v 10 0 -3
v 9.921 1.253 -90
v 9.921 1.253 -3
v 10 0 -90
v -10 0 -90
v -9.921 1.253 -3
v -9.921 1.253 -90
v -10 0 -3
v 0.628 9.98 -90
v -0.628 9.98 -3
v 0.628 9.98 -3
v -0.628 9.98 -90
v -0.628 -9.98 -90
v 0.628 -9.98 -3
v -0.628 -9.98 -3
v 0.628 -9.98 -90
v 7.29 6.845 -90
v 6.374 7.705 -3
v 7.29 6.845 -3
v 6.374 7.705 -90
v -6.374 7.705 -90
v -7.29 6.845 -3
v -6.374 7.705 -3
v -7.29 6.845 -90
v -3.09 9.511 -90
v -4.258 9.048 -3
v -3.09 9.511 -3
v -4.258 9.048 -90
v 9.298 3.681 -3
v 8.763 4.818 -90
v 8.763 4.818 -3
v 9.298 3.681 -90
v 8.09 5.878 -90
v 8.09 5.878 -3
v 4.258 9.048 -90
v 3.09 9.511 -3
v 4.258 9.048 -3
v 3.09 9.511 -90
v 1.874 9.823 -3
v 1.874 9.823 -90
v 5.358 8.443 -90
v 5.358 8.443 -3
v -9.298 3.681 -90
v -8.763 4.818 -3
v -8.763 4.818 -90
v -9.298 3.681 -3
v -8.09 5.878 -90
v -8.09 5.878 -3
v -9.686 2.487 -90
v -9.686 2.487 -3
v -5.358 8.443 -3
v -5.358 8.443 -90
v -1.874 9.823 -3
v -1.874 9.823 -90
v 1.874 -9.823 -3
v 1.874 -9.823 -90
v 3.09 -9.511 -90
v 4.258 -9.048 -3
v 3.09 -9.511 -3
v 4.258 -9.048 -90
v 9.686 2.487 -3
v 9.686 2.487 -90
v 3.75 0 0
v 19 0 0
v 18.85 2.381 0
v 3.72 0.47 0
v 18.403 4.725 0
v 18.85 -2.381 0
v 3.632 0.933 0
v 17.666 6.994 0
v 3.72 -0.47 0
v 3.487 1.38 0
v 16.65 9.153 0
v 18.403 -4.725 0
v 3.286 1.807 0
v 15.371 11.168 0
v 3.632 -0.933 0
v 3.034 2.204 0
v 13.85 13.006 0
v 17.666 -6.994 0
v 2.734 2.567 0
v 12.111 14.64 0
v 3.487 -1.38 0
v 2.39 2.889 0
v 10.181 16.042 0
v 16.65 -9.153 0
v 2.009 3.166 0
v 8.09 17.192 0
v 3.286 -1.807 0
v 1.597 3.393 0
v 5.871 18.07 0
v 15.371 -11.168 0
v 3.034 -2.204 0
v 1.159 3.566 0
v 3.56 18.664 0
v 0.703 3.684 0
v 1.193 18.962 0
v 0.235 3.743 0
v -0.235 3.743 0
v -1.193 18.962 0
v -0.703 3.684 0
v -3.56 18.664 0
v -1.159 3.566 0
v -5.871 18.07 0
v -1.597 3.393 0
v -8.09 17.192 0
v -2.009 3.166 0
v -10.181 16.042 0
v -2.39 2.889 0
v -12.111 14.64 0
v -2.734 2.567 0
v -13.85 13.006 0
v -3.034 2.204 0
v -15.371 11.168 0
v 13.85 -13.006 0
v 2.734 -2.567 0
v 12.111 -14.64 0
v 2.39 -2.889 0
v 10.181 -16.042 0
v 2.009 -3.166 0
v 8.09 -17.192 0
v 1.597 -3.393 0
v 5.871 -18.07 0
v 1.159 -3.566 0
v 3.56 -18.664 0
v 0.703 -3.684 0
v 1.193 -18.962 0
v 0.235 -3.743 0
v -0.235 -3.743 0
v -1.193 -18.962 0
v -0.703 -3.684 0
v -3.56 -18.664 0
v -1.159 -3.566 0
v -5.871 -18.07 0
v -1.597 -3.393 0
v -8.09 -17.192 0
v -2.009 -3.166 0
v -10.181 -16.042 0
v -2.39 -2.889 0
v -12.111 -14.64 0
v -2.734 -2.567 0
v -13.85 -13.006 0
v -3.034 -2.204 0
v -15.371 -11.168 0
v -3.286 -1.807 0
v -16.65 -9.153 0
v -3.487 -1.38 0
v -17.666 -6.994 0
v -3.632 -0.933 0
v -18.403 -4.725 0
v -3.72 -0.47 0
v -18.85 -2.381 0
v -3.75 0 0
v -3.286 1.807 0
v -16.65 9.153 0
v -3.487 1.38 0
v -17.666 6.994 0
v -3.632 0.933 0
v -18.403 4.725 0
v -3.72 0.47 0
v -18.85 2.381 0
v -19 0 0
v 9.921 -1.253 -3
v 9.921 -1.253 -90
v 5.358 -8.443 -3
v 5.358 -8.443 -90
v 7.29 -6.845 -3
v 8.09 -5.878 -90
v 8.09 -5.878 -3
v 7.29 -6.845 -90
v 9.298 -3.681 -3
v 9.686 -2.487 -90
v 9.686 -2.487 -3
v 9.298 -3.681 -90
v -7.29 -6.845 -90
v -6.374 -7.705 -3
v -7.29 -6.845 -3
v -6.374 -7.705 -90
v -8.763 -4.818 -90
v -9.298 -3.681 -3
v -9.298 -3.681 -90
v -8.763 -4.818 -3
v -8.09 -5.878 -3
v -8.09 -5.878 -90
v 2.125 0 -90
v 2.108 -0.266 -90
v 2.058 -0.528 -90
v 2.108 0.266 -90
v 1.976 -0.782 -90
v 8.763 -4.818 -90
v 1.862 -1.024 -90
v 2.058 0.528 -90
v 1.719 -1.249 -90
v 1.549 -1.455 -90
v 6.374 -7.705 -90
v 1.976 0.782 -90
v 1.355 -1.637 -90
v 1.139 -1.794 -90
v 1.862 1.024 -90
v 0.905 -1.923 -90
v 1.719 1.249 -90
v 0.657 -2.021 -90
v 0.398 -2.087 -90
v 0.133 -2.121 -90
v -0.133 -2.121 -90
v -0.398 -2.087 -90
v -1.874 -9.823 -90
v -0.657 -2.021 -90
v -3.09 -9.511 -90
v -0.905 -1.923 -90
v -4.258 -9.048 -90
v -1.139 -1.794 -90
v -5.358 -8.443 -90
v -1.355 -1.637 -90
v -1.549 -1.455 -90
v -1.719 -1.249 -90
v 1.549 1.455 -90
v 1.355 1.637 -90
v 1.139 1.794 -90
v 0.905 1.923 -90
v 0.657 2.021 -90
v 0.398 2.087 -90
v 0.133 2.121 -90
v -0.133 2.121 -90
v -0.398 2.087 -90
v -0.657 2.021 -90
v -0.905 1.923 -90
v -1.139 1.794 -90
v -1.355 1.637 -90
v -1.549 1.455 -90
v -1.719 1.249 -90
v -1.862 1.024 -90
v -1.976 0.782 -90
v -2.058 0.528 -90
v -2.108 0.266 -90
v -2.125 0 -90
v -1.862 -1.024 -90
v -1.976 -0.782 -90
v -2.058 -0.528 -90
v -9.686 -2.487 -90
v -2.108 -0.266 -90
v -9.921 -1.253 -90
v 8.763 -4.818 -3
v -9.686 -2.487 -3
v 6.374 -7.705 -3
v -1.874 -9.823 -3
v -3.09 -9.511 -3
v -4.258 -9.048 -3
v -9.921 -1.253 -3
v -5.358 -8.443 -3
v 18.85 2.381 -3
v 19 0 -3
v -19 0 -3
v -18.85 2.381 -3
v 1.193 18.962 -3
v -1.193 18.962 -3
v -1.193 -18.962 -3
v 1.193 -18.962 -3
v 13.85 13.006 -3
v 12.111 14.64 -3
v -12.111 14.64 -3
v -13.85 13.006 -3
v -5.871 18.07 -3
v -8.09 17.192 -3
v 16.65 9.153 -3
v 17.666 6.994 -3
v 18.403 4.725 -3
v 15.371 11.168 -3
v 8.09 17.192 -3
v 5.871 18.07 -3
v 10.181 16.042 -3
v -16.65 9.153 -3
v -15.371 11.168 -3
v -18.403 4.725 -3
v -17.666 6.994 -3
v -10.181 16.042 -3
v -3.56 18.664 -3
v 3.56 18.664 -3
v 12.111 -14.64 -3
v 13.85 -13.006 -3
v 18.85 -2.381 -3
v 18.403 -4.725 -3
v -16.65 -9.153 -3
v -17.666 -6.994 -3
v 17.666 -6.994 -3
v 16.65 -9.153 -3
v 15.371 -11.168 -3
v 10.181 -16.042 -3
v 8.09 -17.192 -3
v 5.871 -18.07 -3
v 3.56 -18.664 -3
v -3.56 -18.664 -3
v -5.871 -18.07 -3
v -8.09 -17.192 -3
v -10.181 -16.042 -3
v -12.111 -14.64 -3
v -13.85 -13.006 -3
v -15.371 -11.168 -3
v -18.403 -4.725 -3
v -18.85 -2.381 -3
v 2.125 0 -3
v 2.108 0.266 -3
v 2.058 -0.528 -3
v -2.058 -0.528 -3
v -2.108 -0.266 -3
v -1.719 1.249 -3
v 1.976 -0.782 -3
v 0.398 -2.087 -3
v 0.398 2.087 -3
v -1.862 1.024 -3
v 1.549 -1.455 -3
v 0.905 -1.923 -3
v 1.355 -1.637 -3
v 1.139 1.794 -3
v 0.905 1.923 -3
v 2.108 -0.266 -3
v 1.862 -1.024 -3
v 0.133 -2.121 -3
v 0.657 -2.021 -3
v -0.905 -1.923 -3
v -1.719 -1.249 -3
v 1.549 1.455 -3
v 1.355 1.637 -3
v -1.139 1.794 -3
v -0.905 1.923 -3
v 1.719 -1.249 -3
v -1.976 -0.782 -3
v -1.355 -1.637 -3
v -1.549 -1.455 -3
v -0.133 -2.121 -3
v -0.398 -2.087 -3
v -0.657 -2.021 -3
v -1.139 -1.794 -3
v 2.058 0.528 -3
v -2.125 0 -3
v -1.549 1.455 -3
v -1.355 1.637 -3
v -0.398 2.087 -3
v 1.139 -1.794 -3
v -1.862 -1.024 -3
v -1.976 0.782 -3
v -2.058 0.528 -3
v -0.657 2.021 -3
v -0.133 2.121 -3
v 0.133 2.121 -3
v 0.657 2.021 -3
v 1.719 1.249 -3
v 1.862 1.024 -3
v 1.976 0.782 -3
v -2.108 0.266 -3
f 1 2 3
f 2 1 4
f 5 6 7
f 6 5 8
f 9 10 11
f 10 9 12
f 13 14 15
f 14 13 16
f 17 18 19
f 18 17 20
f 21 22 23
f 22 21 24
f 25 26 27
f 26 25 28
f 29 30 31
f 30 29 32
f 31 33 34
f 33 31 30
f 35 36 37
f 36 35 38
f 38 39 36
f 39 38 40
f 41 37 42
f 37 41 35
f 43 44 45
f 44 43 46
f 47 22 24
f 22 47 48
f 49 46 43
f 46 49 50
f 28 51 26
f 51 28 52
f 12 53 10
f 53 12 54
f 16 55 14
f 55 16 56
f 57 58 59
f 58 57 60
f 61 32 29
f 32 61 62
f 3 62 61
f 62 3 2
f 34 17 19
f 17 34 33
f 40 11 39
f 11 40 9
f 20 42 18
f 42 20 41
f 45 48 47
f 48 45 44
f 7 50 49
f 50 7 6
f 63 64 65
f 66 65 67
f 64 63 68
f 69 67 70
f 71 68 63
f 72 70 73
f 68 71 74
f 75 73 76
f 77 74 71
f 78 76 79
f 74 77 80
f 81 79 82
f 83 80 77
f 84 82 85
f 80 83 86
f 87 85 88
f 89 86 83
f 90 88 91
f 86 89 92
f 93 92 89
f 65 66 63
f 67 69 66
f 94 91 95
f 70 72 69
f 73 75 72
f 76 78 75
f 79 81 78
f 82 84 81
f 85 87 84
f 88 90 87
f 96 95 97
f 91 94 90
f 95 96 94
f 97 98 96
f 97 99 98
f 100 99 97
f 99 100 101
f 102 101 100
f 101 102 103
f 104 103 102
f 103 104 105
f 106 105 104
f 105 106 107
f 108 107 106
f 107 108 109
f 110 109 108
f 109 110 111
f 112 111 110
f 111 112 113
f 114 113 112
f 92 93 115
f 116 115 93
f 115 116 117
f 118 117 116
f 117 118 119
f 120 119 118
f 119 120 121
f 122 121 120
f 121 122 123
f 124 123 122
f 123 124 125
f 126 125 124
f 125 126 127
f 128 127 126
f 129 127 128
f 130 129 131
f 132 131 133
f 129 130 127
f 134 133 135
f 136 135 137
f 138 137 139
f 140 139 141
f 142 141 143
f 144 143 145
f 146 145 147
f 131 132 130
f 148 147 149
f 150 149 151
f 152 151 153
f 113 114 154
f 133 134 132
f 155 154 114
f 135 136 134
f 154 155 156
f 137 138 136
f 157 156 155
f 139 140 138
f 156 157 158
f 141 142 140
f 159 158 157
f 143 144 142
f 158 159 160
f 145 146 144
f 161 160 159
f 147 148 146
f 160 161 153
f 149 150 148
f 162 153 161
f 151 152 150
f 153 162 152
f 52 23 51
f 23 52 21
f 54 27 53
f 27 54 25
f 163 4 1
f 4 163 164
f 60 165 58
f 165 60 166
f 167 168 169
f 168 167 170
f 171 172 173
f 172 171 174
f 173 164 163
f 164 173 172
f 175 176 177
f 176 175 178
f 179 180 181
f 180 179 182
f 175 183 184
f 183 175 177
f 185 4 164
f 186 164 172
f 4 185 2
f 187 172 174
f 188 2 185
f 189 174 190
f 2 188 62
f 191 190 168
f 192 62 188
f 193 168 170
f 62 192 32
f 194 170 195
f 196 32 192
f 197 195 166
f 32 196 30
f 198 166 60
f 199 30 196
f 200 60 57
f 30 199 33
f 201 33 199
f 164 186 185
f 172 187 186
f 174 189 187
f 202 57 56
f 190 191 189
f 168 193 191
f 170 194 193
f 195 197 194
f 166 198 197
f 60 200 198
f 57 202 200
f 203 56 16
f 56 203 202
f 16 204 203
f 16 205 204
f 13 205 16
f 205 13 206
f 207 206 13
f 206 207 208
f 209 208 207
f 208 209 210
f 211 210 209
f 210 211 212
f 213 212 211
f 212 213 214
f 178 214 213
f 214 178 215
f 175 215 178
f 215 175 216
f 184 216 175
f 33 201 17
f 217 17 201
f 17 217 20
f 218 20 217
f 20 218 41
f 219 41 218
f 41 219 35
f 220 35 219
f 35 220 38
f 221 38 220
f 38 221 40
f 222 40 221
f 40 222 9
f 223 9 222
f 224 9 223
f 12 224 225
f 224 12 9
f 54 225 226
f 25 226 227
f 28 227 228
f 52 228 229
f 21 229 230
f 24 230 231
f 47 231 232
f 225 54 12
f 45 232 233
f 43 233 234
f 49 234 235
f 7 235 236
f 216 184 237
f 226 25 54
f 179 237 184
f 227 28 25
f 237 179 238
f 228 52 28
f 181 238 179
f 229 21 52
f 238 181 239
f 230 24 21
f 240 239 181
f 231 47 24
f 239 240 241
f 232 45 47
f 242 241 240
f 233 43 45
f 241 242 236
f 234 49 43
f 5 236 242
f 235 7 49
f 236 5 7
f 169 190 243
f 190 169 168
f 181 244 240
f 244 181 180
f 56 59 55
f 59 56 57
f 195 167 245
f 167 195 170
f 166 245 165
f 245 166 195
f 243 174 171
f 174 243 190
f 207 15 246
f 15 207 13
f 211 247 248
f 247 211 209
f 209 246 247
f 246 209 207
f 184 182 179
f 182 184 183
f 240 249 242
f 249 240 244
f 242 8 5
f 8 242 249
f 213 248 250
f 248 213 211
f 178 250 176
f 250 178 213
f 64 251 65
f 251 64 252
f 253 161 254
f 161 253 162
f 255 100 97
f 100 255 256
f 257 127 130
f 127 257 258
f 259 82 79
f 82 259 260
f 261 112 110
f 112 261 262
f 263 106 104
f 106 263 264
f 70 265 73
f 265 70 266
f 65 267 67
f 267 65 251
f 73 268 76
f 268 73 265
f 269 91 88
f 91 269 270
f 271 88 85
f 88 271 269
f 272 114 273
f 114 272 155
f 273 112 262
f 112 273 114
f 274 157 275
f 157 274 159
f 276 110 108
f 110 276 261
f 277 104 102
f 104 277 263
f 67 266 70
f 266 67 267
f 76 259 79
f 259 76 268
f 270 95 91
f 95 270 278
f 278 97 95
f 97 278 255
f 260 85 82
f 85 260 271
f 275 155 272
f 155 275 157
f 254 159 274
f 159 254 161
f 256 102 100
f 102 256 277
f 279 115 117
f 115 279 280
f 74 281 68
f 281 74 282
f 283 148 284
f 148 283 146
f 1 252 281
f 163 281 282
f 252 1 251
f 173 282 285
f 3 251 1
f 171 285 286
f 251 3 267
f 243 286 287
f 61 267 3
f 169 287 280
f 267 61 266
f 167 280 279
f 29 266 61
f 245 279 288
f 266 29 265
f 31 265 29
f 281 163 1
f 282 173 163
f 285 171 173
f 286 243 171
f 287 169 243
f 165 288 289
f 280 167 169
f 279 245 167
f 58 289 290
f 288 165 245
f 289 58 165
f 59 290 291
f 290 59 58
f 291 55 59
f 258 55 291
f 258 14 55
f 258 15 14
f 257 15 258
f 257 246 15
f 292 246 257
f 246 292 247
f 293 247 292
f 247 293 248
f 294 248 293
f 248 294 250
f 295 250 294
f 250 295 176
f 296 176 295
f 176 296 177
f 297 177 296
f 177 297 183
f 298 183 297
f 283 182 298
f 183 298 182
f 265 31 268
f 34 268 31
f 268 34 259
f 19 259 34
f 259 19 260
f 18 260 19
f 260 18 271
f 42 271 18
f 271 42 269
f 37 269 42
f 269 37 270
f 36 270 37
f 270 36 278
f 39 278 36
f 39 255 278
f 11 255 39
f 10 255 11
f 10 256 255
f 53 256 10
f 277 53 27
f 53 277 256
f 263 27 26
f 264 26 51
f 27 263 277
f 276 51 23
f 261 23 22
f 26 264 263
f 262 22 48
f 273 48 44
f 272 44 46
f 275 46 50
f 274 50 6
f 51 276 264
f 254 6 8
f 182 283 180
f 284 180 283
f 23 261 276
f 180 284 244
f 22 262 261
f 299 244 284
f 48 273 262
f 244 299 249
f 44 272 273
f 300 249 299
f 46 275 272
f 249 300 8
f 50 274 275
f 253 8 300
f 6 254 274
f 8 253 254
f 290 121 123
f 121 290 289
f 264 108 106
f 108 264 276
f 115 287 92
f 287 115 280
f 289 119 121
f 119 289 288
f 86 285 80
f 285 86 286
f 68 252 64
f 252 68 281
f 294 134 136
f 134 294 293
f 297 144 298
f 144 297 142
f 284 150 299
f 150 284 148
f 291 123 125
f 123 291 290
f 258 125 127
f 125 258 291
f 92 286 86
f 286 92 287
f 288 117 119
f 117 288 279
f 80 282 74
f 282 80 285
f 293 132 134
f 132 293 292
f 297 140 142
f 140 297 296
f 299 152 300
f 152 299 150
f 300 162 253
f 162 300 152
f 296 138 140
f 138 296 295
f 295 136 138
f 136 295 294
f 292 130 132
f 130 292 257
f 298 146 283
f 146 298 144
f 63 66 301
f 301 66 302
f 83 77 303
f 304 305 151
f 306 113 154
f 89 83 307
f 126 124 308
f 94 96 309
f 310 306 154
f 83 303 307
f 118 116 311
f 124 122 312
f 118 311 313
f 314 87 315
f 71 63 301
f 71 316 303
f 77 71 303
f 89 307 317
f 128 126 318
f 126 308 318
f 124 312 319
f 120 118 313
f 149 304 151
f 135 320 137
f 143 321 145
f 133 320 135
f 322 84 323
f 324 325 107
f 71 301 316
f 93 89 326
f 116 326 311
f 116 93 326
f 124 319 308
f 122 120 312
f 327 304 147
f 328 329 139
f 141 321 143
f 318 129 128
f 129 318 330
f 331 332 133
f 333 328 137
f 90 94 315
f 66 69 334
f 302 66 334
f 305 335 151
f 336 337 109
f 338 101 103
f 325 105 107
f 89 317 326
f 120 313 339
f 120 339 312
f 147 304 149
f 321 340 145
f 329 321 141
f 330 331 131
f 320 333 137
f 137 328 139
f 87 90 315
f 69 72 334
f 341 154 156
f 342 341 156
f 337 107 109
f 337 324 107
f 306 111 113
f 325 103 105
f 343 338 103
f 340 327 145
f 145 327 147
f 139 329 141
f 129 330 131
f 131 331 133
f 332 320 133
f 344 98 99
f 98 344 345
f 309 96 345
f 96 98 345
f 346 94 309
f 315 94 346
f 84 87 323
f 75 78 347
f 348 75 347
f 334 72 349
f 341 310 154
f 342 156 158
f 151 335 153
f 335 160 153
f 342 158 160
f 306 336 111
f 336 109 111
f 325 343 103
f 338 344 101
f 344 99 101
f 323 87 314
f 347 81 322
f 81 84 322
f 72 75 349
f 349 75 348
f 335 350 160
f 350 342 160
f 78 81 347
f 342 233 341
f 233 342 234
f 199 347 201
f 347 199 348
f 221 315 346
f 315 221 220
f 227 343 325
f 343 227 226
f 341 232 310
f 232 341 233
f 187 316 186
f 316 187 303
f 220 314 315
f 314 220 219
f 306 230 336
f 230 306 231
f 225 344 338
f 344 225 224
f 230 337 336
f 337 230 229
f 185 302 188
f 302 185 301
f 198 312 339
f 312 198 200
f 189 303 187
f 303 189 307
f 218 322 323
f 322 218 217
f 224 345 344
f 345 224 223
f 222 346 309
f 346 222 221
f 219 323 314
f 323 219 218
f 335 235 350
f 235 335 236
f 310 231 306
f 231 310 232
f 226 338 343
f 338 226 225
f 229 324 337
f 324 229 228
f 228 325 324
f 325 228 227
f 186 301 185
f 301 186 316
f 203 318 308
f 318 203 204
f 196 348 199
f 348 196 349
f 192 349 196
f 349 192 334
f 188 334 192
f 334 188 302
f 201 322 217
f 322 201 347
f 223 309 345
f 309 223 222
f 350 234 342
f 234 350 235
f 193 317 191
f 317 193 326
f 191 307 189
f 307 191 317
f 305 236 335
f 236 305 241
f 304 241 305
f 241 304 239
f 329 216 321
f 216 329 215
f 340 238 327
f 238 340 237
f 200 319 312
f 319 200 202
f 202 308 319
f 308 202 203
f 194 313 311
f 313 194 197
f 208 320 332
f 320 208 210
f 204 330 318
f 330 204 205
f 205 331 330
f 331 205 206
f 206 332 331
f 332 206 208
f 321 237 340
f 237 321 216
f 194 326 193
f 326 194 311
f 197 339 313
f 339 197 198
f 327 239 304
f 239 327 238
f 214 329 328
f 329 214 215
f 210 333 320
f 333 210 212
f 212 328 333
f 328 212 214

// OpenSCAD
$fn = 50;


difference() {
	union() {
		translate(v = [0, 0, -90.0000000000]) {
			cylinder(h = 90, r = 10.0000000000);
		}
		translate(v = [0, 0, -3.0000000000]) {
			cylinder(h = 3, r = 19.0000000000);
		}
	}
	union() {
		translate(v = [0, 0, 0]) {
			rotate(a = [0, 0, 0]) {
				difference() {
					union() {
						#translate(v = [0, 0, -90.0000000000]) {
							cylinder(h = 90, r = 2.0000000000);
						}
						#translate(v = [0, 0, -3]) {
							cylinder(h = 3, r = 10.0000000000, r1 = 2.1250000000, r2 = 3.7500000000);
						}
						#translate(v = [0, 0, -90.0000000000]) {
							cylinder(h = 90, r = 2.1250000000);
						}
						#translate(v = [0, 0, -90.0000000000]) {
							cylinder(h = 90, r = 2.0000000000);
						}
					}
					union();
				}
			}
		}
	}
}
